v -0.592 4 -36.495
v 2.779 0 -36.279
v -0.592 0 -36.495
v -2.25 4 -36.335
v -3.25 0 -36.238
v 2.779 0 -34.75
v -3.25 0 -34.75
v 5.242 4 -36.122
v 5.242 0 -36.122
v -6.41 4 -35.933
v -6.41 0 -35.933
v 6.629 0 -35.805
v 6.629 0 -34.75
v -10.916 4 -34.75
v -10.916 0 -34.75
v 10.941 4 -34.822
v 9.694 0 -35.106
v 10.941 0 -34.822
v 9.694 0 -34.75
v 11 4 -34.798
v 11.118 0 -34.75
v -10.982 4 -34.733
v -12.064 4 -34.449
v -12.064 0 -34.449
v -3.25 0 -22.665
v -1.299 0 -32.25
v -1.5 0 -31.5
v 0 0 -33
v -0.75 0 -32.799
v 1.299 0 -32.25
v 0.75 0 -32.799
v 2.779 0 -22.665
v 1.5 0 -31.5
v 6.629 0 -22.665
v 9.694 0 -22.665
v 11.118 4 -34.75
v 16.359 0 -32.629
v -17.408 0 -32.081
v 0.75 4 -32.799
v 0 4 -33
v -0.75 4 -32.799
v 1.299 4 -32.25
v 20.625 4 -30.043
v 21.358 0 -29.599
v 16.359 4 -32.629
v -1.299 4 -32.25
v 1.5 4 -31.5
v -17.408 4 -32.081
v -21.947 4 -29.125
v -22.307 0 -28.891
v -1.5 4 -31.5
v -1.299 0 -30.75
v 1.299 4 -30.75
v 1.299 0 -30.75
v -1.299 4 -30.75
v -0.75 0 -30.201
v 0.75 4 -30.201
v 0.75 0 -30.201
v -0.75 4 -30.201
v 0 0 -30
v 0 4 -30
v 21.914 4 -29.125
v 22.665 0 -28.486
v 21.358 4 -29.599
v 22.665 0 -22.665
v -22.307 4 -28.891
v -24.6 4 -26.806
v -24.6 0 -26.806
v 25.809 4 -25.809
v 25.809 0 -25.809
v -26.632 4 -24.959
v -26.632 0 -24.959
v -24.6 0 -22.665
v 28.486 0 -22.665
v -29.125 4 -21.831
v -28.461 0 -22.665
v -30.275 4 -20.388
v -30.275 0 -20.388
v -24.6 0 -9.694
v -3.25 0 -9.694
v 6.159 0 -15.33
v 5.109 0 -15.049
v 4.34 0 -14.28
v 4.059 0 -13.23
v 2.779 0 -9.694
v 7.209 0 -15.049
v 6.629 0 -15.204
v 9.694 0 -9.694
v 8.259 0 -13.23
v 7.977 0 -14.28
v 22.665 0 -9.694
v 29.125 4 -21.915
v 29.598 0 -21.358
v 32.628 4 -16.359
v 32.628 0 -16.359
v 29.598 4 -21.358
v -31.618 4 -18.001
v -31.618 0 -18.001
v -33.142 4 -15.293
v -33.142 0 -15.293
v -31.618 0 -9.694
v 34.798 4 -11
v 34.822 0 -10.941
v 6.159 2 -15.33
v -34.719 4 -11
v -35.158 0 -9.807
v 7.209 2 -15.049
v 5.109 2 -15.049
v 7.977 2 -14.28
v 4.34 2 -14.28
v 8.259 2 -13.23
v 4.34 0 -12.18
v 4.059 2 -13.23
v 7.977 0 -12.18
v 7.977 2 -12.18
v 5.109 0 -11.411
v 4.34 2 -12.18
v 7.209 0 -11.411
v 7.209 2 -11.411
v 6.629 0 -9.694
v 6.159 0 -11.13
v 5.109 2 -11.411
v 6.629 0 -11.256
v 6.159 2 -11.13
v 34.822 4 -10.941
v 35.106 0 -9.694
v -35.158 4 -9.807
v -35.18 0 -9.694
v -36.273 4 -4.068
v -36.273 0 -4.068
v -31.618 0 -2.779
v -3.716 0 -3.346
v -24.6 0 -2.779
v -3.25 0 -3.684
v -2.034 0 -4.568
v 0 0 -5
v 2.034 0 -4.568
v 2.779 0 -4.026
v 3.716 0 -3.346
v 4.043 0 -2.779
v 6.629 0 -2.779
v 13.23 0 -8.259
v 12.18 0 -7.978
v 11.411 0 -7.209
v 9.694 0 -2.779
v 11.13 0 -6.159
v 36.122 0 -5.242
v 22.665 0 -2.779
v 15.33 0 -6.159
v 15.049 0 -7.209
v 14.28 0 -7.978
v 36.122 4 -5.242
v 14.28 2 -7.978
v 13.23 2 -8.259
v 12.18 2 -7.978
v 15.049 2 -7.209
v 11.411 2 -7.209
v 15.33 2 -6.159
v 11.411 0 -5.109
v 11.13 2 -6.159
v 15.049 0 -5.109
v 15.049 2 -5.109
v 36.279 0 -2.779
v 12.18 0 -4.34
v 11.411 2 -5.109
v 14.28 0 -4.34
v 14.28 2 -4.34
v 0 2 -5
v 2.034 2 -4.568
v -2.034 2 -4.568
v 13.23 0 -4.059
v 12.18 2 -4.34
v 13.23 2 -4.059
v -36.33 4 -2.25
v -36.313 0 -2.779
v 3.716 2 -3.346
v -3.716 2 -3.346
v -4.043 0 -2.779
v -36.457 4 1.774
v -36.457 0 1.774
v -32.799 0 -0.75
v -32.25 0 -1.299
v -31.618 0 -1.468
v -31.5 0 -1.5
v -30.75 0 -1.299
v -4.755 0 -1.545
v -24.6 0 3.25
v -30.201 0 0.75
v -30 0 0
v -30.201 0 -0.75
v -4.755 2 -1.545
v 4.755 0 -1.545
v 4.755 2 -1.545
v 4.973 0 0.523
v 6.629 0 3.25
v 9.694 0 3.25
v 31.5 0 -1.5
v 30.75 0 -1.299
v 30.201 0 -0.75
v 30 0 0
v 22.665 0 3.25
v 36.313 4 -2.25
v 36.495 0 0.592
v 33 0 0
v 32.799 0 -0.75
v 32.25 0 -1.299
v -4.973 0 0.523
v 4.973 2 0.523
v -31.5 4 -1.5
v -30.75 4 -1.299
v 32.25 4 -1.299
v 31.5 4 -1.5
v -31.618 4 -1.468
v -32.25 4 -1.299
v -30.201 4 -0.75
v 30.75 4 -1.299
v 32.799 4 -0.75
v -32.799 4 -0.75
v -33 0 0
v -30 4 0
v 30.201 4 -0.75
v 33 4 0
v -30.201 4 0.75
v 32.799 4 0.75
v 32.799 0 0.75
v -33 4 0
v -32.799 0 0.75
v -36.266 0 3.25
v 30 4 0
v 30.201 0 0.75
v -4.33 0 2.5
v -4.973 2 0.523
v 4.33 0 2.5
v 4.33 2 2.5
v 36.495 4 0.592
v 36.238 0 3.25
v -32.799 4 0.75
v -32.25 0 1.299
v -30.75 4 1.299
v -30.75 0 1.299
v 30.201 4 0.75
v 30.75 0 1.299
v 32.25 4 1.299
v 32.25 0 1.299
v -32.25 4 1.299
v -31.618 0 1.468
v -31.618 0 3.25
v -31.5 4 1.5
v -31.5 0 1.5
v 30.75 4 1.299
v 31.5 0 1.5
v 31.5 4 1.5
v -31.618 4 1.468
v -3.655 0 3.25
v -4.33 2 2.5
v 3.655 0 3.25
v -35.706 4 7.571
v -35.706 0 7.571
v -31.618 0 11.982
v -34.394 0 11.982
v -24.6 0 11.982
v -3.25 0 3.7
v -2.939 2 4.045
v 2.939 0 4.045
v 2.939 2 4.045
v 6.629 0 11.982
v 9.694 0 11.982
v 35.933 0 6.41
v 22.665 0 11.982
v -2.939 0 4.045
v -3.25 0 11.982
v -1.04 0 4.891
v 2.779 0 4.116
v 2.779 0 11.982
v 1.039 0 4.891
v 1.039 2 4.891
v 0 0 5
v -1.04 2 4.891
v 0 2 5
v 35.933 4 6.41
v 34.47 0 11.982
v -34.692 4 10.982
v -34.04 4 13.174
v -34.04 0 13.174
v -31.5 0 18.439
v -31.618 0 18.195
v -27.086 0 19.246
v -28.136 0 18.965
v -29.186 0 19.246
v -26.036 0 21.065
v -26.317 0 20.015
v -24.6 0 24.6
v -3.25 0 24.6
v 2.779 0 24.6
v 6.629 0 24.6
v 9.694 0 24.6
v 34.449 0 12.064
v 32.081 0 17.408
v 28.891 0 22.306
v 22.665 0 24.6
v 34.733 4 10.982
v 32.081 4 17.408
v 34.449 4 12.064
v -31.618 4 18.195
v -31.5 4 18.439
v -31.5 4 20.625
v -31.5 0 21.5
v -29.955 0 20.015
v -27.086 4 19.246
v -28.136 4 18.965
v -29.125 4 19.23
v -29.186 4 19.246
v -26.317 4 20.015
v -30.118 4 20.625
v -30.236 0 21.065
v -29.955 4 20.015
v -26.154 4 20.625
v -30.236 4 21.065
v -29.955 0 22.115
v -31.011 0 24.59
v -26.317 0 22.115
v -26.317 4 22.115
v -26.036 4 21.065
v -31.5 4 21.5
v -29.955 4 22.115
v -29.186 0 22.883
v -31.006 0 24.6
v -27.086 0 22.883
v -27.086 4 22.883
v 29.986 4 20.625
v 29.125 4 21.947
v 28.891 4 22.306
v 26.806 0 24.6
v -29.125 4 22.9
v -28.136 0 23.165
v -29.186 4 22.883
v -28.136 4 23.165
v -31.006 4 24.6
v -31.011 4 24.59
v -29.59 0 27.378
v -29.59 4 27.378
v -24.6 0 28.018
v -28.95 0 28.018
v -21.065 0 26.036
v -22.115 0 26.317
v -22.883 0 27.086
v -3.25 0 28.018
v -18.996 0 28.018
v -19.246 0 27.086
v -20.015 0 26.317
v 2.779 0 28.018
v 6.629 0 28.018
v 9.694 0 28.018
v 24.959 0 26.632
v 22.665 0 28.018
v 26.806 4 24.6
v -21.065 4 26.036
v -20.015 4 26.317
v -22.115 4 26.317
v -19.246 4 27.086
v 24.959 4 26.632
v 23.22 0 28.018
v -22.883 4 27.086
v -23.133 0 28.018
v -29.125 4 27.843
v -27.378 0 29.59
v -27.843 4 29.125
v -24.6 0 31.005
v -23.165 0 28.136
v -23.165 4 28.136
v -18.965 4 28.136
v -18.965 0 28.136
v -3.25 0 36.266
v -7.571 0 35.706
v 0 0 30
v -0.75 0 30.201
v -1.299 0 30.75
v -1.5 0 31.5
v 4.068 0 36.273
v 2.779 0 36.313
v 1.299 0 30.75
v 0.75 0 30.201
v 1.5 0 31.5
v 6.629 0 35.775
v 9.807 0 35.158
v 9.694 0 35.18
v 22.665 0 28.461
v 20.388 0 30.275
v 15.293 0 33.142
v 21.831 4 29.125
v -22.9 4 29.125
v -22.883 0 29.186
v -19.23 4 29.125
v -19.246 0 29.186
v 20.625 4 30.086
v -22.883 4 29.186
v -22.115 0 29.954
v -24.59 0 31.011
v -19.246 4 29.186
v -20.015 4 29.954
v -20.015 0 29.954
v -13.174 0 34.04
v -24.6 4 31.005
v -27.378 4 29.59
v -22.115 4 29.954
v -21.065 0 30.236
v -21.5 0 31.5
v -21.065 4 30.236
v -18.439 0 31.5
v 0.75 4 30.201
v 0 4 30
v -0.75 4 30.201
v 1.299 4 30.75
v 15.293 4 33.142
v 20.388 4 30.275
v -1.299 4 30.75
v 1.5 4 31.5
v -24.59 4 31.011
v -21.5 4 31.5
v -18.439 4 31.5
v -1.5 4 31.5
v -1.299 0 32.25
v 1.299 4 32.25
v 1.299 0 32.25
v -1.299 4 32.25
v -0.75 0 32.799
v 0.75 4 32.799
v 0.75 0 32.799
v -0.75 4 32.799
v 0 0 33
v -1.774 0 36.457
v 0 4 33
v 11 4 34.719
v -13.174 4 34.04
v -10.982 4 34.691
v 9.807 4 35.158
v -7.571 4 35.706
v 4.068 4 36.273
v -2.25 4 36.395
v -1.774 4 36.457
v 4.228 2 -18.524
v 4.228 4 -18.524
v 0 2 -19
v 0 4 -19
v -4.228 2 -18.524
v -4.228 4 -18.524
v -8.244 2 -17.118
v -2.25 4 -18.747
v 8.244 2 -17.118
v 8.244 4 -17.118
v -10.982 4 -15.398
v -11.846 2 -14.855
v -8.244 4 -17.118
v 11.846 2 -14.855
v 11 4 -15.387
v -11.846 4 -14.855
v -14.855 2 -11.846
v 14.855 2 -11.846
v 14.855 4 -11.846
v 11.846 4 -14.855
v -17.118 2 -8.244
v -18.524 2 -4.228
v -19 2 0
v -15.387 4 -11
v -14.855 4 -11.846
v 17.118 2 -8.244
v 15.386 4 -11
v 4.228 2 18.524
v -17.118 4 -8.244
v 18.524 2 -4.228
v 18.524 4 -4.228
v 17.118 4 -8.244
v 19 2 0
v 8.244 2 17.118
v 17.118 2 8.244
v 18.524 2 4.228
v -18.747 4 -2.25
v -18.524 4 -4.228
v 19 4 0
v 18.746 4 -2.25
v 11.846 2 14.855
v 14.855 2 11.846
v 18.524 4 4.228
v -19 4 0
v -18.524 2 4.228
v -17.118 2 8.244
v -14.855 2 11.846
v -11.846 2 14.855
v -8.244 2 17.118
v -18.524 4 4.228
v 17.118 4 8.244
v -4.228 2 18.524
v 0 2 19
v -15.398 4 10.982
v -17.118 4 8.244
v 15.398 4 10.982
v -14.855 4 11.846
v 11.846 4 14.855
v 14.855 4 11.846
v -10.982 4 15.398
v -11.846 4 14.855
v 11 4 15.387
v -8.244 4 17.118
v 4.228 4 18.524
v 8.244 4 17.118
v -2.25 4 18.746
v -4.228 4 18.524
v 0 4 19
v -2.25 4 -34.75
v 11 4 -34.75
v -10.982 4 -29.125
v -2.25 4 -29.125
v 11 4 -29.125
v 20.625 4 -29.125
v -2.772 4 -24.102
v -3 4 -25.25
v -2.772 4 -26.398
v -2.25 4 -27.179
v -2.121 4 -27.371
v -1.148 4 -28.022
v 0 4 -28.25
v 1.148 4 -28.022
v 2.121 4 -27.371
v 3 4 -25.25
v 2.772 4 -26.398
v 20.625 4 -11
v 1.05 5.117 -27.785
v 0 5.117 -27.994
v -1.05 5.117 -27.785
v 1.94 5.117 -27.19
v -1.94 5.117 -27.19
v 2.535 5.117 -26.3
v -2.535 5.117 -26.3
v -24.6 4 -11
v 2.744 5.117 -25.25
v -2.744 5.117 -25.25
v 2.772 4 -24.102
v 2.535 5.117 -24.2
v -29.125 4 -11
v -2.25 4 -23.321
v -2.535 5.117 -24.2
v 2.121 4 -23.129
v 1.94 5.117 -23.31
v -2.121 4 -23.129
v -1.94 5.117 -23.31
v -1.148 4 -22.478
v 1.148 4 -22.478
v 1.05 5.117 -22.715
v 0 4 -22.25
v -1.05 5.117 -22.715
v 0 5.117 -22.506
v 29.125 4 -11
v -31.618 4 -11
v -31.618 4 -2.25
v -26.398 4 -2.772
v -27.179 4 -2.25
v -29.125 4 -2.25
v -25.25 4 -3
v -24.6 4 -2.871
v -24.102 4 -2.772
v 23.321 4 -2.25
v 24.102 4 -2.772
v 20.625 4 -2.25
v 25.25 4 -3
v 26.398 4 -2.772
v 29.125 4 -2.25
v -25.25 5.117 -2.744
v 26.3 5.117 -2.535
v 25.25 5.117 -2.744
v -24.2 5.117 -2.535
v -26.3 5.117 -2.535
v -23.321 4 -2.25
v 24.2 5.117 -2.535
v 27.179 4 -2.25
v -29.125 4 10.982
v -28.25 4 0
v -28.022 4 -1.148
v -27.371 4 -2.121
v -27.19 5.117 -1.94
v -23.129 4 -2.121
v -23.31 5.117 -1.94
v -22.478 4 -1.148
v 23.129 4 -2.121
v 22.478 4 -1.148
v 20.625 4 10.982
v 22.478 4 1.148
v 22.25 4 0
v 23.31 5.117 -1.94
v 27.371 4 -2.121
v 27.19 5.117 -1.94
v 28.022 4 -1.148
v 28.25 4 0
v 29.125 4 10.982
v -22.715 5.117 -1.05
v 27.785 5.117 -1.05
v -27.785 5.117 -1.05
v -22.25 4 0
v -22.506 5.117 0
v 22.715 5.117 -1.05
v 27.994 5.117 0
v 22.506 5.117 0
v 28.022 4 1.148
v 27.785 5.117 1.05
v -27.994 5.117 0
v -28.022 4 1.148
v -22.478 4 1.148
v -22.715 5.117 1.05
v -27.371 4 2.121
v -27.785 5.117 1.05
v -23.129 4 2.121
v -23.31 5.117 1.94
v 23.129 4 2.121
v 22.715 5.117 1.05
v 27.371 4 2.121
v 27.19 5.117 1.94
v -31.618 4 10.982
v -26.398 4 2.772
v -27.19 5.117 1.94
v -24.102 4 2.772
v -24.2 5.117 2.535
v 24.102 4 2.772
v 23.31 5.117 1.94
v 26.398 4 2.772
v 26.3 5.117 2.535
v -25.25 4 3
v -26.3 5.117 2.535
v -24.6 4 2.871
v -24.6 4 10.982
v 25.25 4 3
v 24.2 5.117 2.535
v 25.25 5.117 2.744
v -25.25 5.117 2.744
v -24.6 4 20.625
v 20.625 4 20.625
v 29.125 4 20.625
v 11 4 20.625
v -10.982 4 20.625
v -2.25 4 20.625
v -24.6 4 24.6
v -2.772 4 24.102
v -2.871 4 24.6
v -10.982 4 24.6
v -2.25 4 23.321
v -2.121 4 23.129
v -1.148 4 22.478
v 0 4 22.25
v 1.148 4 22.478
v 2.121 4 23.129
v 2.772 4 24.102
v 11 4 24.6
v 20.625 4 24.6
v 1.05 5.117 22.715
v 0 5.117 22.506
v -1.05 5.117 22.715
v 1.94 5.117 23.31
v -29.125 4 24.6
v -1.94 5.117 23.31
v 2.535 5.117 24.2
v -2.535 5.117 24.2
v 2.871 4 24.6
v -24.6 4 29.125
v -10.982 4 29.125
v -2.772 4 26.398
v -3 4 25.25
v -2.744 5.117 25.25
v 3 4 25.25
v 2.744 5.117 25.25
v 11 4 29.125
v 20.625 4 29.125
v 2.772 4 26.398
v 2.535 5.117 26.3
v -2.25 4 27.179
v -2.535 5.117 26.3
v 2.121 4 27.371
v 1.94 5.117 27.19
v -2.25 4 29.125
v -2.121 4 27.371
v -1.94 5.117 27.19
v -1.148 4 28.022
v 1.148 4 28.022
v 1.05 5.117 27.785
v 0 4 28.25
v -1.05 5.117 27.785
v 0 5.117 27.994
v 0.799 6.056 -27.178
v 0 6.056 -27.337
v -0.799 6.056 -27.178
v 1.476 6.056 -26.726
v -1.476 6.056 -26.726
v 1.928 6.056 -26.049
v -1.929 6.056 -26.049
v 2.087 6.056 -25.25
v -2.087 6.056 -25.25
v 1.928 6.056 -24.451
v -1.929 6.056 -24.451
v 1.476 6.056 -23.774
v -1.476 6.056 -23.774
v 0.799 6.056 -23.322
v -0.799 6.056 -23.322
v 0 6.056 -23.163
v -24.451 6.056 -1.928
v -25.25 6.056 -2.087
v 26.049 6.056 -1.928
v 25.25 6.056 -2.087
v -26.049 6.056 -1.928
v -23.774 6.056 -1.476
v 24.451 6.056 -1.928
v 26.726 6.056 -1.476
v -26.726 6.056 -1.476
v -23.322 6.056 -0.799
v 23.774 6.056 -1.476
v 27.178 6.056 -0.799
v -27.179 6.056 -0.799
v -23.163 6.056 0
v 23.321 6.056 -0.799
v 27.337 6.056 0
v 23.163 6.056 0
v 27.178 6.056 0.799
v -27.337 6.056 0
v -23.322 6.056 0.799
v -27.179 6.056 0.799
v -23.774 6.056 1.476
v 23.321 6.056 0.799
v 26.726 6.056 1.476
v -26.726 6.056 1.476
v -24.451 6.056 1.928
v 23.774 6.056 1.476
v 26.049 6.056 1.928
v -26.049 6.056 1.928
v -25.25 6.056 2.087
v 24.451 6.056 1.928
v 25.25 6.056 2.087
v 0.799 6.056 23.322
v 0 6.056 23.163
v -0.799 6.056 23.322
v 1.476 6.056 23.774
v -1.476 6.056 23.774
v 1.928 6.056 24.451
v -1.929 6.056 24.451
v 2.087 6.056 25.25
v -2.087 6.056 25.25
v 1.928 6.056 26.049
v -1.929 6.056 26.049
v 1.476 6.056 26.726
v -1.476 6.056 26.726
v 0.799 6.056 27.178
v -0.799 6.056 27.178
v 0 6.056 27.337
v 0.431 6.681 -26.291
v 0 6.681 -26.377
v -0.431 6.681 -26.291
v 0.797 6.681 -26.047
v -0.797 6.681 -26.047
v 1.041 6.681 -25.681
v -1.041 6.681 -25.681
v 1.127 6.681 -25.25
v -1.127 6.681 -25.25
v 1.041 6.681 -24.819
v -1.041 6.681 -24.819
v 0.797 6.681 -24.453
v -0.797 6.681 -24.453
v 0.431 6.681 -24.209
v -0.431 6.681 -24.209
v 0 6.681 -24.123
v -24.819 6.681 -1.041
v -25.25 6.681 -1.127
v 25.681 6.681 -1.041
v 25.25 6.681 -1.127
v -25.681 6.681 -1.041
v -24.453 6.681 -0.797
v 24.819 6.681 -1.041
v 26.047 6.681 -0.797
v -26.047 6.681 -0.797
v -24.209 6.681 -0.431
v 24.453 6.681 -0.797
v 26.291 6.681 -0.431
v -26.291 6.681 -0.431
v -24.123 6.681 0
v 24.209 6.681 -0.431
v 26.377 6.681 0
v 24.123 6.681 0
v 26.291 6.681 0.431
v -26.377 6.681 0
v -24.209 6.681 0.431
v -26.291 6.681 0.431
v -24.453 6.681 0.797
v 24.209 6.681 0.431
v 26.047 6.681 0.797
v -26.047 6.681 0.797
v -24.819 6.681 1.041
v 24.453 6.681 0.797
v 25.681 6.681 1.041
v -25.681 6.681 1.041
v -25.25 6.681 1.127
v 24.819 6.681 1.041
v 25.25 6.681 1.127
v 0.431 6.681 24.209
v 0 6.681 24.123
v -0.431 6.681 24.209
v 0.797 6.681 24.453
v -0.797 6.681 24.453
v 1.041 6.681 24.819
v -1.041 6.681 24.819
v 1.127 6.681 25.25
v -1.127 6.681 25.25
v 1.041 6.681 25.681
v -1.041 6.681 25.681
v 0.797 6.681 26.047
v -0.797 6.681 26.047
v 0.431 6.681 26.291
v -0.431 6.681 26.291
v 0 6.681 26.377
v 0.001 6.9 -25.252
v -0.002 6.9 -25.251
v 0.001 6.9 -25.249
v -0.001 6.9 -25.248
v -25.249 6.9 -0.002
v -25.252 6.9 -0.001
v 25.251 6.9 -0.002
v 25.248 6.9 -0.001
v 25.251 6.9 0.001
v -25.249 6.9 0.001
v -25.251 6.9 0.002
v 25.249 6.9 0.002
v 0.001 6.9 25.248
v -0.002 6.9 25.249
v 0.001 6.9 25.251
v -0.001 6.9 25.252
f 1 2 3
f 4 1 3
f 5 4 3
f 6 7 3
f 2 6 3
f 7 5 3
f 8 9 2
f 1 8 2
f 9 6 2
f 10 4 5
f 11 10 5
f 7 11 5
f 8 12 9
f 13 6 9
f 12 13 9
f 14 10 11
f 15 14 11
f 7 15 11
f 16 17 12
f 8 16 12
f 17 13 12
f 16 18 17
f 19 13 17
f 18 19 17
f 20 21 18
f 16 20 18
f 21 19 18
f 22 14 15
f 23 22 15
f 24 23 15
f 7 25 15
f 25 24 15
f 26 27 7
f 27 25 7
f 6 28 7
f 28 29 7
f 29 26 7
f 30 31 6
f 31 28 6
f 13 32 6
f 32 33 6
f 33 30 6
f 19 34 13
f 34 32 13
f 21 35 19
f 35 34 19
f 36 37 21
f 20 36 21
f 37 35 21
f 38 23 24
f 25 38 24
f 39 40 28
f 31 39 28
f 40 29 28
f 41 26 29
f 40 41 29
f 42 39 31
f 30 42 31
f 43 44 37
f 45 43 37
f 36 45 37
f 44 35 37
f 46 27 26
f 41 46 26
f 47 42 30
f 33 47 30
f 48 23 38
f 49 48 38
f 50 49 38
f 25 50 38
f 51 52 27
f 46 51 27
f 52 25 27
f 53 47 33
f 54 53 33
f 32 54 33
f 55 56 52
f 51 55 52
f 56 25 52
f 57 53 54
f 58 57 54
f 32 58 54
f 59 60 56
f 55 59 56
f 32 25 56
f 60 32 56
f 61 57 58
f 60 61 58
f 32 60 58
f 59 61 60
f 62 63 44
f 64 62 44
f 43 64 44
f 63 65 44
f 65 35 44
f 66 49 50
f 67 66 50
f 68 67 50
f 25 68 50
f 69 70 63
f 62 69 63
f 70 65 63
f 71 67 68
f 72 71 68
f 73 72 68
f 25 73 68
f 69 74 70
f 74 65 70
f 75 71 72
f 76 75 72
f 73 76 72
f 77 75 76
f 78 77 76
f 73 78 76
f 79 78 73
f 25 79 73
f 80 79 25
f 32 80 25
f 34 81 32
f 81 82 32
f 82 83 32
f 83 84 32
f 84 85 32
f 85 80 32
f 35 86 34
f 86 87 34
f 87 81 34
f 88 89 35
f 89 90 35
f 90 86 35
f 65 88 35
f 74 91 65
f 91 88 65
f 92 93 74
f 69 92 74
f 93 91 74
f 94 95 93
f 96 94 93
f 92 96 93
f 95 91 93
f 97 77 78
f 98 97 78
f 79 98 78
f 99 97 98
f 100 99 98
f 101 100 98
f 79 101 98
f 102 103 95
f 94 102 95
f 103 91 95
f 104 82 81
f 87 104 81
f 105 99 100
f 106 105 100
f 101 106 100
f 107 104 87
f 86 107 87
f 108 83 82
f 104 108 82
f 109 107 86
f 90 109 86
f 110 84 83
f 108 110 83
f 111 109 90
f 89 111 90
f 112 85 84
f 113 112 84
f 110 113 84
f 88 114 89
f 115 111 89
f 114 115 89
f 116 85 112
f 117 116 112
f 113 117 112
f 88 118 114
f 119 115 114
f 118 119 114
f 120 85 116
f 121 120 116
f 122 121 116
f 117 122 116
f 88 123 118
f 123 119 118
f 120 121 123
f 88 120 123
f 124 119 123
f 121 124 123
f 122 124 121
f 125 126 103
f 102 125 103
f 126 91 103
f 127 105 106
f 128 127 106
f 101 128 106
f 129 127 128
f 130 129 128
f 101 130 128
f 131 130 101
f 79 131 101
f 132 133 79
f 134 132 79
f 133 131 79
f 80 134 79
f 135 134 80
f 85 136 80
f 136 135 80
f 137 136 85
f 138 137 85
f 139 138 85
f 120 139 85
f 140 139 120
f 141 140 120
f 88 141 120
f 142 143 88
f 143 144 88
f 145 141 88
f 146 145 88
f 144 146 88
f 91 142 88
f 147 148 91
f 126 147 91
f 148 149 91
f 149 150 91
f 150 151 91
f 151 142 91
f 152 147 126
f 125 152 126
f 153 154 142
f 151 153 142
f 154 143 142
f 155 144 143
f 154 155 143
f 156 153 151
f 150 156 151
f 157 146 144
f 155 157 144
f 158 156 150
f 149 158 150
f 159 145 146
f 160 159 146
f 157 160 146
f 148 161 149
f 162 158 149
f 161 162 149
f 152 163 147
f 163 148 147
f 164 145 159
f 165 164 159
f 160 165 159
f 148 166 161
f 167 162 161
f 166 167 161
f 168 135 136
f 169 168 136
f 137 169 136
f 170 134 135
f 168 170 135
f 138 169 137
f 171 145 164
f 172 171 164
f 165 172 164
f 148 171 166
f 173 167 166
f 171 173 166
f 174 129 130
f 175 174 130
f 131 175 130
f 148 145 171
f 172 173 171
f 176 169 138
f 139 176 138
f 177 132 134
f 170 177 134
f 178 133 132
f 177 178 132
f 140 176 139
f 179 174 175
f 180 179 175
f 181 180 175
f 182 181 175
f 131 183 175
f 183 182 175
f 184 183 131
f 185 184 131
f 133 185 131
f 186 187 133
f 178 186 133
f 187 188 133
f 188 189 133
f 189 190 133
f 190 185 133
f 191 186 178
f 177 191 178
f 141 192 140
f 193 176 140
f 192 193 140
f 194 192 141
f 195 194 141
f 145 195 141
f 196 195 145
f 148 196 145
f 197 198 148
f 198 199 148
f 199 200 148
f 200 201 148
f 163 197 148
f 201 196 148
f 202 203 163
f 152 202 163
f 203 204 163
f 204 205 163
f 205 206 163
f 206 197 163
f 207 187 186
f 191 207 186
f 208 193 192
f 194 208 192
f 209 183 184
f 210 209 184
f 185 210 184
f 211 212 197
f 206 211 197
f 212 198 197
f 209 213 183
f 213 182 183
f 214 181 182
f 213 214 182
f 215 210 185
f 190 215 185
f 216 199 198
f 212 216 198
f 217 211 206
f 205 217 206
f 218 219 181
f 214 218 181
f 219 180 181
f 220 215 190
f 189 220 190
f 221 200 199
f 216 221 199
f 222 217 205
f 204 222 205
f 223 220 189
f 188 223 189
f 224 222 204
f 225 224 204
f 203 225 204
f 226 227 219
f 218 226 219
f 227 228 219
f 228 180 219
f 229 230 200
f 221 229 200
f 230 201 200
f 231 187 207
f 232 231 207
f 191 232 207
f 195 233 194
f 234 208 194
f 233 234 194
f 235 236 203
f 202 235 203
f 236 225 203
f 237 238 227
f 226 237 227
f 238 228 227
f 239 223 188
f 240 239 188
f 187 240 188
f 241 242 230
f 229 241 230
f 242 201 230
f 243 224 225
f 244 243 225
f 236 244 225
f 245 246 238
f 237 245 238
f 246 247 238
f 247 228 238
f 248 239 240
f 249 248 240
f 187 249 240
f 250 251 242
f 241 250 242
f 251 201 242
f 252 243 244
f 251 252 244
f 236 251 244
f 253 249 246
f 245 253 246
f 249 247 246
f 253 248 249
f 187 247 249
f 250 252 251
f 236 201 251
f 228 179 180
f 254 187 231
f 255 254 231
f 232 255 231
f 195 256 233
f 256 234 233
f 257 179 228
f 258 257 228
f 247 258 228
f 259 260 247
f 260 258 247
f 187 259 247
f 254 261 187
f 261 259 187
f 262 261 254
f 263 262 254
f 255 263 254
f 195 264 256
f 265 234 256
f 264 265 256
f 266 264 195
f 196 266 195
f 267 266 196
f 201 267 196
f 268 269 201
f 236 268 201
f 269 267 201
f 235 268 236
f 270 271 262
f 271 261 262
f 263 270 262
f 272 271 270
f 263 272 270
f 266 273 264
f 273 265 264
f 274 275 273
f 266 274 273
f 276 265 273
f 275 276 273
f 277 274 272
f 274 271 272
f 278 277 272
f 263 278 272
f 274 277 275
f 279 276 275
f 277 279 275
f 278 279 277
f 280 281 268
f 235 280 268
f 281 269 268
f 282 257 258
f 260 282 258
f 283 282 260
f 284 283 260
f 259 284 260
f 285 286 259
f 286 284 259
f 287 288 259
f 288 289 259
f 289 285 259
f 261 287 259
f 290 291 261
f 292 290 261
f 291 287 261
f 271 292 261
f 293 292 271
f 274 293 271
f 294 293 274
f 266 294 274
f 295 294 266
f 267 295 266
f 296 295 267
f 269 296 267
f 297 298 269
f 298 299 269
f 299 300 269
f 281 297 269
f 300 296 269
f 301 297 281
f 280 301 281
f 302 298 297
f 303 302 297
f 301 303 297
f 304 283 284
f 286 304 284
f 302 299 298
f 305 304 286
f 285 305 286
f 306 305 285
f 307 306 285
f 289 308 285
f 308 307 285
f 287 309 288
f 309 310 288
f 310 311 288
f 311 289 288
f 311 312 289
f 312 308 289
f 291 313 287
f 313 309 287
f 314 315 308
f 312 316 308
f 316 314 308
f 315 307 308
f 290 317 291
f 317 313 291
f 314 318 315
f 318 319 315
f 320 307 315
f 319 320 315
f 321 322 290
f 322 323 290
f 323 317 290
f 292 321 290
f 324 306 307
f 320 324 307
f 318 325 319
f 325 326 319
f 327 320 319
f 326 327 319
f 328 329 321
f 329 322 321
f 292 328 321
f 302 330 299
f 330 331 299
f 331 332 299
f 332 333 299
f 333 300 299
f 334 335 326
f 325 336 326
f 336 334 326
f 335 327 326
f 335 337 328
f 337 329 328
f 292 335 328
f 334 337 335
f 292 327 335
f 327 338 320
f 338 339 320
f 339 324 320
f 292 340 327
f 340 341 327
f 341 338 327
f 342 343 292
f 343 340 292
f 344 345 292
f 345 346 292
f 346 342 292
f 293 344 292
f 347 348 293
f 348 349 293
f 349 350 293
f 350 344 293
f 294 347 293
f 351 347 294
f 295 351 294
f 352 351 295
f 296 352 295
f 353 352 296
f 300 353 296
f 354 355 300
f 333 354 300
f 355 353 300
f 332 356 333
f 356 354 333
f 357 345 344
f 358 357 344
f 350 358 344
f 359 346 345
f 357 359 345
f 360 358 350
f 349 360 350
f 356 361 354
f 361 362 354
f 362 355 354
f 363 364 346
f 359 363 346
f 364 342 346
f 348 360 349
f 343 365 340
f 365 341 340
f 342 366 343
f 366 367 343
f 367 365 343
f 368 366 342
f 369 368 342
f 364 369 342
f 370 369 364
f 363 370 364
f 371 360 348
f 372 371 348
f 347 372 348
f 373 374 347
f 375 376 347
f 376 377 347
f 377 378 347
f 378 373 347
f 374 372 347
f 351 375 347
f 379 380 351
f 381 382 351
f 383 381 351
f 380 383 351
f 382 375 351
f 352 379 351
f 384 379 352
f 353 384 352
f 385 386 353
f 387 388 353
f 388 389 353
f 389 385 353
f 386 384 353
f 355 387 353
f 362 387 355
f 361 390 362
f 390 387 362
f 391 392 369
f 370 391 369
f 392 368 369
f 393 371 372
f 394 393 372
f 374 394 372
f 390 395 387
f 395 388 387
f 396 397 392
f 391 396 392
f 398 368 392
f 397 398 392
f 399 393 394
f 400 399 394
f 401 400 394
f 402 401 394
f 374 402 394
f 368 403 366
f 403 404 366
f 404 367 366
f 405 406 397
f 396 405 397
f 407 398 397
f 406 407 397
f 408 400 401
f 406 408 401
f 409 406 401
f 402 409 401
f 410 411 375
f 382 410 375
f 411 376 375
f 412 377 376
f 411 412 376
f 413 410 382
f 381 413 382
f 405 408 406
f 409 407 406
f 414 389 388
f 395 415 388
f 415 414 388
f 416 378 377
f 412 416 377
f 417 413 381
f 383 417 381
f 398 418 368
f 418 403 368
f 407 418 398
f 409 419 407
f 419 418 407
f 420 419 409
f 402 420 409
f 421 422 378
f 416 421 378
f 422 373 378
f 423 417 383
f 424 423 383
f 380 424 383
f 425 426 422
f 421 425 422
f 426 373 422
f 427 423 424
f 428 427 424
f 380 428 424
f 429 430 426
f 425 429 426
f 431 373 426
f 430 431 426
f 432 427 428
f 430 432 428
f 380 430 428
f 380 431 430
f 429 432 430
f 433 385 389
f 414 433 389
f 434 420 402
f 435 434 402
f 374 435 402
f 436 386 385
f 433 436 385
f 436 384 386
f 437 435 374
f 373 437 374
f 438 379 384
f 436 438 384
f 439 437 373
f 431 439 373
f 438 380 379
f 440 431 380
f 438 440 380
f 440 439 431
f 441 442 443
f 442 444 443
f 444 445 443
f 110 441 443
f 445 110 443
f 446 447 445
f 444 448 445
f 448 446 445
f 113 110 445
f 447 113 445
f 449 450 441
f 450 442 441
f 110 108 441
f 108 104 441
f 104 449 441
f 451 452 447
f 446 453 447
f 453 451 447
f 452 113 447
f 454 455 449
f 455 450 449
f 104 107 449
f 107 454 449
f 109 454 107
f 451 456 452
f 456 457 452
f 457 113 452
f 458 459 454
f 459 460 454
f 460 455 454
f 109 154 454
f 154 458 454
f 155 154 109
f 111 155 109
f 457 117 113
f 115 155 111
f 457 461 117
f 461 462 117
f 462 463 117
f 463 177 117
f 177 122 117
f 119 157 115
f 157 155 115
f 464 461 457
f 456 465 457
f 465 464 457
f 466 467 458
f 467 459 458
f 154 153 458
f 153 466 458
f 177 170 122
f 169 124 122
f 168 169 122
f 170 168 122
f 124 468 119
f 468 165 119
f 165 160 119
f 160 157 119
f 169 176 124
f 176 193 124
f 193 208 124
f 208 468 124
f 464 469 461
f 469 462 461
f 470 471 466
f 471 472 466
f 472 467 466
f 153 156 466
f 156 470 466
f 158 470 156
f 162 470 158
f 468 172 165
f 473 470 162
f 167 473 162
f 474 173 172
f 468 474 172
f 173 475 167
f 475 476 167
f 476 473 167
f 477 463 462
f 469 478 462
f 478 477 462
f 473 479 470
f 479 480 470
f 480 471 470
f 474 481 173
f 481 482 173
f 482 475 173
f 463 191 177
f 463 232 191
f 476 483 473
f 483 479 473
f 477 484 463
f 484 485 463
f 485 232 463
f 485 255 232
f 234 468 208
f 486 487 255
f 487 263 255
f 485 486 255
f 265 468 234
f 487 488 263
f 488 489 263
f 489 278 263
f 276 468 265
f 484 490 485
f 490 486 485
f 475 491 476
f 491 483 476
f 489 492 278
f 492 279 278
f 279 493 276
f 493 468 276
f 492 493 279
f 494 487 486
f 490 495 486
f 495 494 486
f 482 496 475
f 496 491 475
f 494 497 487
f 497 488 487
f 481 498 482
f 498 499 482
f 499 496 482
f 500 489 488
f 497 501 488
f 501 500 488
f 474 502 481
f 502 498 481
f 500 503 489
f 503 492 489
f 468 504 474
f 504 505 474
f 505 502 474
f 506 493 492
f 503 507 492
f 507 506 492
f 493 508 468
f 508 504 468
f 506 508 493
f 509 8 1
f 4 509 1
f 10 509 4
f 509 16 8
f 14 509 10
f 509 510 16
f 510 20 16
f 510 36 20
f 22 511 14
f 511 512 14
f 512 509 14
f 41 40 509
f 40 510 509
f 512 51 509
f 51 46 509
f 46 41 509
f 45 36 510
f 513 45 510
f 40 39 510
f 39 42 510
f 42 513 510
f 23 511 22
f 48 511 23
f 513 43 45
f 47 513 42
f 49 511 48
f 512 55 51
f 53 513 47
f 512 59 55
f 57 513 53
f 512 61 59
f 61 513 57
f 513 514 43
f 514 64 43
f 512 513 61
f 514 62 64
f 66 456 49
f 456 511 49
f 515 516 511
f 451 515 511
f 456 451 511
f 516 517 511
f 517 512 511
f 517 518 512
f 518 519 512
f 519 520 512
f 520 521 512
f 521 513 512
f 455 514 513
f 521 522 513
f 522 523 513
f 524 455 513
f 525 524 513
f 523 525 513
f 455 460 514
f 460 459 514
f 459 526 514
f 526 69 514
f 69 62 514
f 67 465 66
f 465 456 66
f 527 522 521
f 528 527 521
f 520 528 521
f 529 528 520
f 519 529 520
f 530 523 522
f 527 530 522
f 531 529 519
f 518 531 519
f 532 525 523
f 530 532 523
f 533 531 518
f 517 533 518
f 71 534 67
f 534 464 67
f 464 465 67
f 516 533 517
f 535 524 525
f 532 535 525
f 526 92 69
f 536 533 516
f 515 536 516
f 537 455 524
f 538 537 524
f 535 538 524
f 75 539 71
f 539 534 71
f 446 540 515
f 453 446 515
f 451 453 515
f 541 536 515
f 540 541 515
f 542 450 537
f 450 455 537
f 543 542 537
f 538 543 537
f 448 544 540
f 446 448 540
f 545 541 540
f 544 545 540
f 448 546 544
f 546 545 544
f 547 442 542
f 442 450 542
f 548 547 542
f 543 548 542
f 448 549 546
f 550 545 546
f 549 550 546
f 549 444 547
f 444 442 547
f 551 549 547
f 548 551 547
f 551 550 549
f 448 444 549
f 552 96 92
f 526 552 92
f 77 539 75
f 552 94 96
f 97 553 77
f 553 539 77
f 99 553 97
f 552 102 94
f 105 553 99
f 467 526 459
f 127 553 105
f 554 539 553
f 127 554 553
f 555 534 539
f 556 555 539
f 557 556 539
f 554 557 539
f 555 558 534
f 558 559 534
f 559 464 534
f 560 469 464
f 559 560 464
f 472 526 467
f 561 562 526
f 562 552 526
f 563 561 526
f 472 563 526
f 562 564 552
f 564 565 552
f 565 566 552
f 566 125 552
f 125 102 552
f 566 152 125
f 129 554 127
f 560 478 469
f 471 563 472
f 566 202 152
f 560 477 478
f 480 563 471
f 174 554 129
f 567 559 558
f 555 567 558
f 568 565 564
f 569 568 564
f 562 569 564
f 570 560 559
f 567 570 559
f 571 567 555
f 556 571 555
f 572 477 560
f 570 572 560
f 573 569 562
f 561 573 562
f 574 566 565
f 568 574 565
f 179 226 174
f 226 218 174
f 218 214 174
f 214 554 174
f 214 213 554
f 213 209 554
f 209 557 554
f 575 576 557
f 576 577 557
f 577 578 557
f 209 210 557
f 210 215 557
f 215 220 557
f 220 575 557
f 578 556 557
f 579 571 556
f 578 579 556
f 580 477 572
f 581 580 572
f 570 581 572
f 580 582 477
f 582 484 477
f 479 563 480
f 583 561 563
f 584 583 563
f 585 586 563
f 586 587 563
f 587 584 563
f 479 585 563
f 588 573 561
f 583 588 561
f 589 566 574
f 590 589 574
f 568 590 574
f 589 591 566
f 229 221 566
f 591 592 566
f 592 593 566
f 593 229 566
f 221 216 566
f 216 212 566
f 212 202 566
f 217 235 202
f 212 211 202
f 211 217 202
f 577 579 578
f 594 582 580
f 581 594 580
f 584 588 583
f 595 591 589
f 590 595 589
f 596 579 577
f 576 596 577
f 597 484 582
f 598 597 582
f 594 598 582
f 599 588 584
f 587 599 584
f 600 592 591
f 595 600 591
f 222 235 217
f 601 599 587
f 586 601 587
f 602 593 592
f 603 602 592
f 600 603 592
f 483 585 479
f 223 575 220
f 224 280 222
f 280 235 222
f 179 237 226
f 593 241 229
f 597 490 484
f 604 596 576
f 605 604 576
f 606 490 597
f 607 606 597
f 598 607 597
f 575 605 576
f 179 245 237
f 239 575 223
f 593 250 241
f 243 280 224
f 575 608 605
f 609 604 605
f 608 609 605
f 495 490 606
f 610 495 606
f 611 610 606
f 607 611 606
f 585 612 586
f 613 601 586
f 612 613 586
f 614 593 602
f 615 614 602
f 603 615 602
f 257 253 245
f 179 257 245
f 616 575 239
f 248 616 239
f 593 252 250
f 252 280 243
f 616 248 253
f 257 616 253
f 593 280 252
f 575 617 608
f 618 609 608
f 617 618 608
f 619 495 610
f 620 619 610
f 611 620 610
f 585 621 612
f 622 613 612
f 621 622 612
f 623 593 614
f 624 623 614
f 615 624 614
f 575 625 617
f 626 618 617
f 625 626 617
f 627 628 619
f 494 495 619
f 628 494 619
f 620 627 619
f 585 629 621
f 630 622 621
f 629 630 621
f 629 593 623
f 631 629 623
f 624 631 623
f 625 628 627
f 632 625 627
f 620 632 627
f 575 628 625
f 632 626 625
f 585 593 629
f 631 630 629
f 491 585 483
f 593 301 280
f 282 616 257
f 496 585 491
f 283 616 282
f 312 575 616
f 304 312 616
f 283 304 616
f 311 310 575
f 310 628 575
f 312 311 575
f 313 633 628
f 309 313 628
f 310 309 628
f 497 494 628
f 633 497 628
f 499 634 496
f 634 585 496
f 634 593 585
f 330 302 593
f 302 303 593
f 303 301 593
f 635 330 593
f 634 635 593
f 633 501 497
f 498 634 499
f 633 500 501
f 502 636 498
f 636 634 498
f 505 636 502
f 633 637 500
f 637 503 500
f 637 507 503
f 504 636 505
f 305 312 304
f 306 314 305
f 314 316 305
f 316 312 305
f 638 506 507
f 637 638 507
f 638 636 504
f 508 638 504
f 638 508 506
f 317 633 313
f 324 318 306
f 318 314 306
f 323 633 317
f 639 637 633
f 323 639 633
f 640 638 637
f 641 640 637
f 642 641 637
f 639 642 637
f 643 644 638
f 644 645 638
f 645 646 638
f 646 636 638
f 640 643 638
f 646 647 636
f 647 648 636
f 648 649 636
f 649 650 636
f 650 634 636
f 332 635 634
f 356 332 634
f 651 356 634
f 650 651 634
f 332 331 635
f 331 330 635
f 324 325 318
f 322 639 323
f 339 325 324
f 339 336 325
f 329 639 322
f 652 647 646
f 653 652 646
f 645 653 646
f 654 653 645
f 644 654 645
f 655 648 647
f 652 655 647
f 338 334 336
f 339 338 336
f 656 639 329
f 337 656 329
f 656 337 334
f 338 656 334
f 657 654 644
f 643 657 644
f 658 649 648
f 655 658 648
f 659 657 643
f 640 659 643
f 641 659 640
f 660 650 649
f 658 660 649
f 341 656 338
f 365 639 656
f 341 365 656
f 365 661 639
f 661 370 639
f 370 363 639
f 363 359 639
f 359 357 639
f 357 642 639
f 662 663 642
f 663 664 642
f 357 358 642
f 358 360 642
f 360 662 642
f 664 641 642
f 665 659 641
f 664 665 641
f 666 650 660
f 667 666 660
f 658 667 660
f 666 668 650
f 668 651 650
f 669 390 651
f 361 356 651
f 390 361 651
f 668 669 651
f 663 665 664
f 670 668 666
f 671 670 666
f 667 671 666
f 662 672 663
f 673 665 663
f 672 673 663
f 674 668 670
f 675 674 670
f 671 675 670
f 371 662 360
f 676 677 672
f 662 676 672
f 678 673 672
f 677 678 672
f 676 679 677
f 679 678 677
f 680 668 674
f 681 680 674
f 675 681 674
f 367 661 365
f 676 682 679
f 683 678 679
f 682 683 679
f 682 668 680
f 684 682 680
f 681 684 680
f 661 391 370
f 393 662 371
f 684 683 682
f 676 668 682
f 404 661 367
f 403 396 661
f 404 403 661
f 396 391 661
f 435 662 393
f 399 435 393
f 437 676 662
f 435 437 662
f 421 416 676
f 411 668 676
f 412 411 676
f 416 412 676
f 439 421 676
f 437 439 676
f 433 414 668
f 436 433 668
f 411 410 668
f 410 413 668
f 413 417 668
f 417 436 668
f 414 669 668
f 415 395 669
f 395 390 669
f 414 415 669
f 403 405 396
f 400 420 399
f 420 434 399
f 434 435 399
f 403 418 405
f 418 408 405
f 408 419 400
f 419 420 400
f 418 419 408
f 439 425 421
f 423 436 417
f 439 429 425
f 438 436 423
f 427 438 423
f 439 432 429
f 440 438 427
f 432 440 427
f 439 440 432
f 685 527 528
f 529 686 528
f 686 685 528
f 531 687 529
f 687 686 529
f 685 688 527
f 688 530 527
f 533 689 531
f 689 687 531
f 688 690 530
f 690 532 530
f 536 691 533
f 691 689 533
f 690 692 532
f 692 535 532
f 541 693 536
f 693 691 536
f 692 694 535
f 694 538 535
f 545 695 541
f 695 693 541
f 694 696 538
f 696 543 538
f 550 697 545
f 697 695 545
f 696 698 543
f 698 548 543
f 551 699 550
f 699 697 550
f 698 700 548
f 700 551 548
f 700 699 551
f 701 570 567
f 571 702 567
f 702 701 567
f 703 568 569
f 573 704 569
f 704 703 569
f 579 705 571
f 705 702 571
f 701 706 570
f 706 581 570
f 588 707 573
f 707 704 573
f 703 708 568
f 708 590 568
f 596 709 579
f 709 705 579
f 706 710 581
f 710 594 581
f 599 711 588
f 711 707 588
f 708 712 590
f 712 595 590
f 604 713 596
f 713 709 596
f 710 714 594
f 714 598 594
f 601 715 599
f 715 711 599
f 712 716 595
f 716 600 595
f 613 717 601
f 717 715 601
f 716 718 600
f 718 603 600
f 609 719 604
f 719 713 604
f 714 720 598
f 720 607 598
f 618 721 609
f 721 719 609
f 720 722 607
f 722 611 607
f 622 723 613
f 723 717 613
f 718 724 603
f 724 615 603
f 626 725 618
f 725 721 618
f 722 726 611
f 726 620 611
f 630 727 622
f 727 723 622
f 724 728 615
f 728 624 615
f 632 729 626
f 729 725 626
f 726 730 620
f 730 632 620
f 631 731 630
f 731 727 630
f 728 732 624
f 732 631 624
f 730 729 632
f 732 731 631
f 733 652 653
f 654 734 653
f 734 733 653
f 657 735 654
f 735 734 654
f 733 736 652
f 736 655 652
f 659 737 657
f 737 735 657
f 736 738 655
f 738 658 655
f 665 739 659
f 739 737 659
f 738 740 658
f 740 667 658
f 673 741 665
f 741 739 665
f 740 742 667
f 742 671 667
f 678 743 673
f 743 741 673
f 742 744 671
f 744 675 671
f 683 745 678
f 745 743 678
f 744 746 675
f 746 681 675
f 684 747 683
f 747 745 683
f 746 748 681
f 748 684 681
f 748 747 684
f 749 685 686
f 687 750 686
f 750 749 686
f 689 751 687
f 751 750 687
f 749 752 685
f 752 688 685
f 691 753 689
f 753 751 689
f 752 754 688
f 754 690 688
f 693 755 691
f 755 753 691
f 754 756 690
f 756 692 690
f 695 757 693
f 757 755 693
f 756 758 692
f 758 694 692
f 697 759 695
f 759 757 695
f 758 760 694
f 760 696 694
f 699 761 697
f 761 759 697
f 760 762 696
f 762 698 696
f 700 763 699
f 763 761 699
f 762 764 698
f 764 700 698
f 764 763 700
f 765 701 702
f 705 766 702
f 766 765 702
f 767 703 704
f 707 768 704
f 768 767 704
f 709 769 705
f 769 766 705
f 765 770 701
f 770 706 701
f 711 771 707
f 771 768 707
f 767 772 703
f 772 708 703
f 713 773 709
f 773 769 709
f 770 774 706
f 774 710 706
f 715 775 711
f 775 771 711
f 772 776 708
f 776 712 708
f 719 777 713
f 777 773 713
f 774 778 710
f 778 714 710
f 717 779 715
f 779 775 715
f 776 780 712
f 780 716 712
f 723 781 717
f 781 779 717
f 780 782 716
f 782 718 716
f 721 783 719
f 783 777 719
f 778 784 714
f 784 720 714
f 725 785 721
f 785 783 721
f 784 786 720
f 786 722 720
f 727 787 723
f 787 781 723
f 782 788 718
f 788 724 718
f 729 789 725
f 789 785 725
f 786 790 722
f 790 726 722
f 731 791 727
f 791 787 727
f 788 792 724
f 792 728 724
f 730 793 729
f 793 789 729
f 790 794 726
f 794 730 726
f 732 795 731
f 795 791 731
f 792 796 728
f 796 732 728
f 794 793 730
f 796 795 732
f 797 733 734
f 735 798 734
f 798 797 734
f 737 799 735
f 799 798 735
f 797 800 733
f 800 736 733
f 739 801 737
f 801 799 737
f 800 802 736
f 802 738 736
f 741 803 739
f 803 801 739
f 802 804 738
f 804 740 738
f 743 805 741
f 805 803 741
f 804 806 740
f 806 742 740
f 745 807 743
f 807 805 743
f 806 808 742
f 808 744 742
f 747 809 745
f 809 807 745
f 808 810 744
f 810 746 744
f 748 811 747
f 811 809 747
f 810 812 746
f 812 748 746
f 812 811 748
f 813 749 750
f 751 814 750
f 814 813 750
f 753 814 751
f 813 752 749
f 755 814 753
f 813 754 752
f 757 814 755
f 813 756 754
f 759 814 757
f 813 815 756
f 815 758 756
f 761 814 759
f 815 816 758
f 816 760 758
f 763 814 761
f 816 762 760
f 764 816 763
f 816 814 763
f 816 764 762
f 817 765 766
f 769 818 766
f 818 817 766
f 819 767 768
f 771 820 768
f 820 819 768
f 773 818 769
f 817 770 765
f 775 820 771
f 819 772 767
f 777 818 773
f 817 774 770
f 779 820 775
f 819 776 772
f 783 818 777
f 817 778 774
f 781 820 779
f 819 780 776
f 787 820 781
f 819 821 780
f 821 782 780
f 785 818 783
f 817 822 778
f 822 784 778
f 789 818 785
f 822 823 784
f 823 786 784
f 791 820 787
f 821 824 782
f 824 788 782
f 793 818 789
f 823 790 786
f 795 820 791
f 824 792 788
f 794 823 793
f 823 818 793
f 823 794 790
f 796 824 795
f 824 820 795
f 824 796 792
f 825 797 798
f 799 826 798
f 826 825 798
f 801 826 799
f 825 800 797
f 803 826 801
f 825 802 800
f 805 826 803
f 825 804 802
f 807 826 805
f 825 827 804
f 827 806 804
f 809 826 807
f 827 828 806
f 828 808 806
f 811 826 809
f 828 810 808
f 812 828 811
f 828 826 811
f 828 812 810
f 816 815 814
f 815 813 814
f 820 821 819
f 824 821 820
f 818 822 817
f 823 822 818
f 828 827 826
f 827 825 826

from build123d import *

# Parameters (mm, degrees)
SKETCH1_R           = 2.1
SKETCH1_R_2         = 1.5
SKETCH1_R_3         = 3
SKETCH1_R_4         = 19
BOSS_EXTRUDE1_DEPTH = 4
BOSS_EXTRUDE2_DEPTH = 2
FILLET1_R           = 10
SKETCH1_4_R         = 3
BOSS_EXTRUDE3_DEPTH = 6.9
FILLET2_R           = 3


with BuildPart() as part:
    # Sketch1 → Boss-Extrude1 (new body)
    with BuildSketch(Plane(origin=(0, 0, 0), x_dir=(1, 0, 0), z_dir=(0, 1, 0))):
        with BuildLine():
            ThreePointArc((-18.439088915, -31.5), (25.809397513, 25.809397513), (-31.5, -18.439088915))
            Line((-31.5, -18.439088915), (-31.5, -31.5))
            Line((-31.5, -31.5), (-18.439088915, -31.5))
        make_face()
        with Locations(Location((-28.135778823, -21.064711012, 0), (0, 0, 270))):
            Circle(SKETCH1_R, mode=Mode.SUBTRACT)
        with Locations(Location((-21.064711012, -28.135778823, 0), (0, 0, 270))):
            Circle(SKETCH1_R, mode=Mode.SUBTRACT)
        with Locations(Location((0, -31.5, 0), (0, 0, 270))):
            Circle(SKETCH1_R_2, mode=Mode.SUBTRACT)
        with Locations(Location((0, -25.25, 0), (0, 0, 270))):
            Circle(SKETCH1_R_3, mode=Mode.SUBTRACT)
        with Locations(Location((-31.5, 0, 0), (0, 0, 270))):
            Circle(SKETCH1_R_2, mode=Mode.SUBTRACT)
        with Locations(Location((-25.25, 0, 0), (0, 0, 270))):
            Circle(SKETCH1_R_3, mode=Mode.SUBTRACT)
        with Locations(Location((0, 0, 0), (0, 0, 270))):
            Circle(SKETCH1_R_4, mode=Mode.SUBTRACT)
        with Locations(Location((25.25, 0, 0), (0, 0, 270))):
            Circle(SKETCH1_R_3, mode=Mode.SUBTRACT)
        with Locations(Location((31.5, 0, 0), (0, 0, 270))):
            Circle(SKETCH1_R_2, mode=Mode.SUBTRACT)
        with Locations(Location((0, 25.25, 0), (0, 0, 270))):
            Circle(SKETCH1_R_3, mode=Mode.SUBTRACT)
        with Locations(Location((0, 31.5, 0), (0, 0, 270))):
            Circle(SKETCH1_R_2, mode=Mode.SUBTRACT)
    extrude(amount=BOSS_EXTRUDE1_DEPTH)

    # Sketch1<3> → Boss-Extrude2 (add)
    with BuildSketch(Plane(origin=(0, 0, 0), x_dir=(1, 0, 0), z_dir=(0, 1, 0))):
        with BuildLine():
            ThreePointArc((0, 19), (-17.553711118, 7.270985215), (-13.435028843, -13.435028843))
            ThreePointArc((-13.435028843, -13.435028843), (7.270985215, -17.553711118), (19, 0))
            ThreePointArc((19, 0), (13.435028843, 13.435028843), (0, 19))
        make_face()
        with BuildLine():
            ThreePointArc((-3.535533906, -3.535533906), (-3.535533906, 3.535533906), (3.535533906, 3.535533906))
            ThreePointArc((3.535533906, 3.535533906), (4.619397663, 1.913417162), (5, 0))
            ThreePointArc((5, 0), (1.913417162, -4.619397663), (-3.535533906, -3.535533906))
        make_face(mode=Mode.SUBTRACT)
        with BuildLine():
            ThreePointArc((15.329967876, 6.158900064), (12.426332668, 4.218753046), (11.745043636, 7.643824305))
            ThreePointArc((11.745043636, 7.643824305), (14.033603084, 8.099047082), (15.329967876, 6.158900064))
        make_face(mode=Mode.SUBTRACT)
        with BuildLine():
            ThreePointArc((8.258900064, 13.229967876), (8.099047082, 12.426332668), (7.643824305, 11.745043636))
            ThreePointArc((7.643824305, 11.745043636), (4.218753046, 14.033603084), (8.258900064, 13.229967876))
        make_face(mode=Mode.SUBTRACT)
    extrude(amount=BOSS_EXTRUDE2_DEPTH)

    # Fillet1
    fillet1_edges = [part.edges().sort_by_distance(p)[0] for p in [
        (-31.5, 2, 31.5),
    ]]
    fillet(fillet1_edges, radius=FILLET1_R)

    # Sketch1<4> → Boss-Extrude3 (add)
    with BuildSketch(Plane(origin=(0, 0, 0), x_dir=(1, 0, 0), z_dir=(0, 1, 0))):
        with Locations(Location((0, 25.25, 0), (0, 0, 90))):
            Circle(SKETCH1_4_R)
        with Locations(Location((25.25, 0, 0), (0, 0, 90))):
            Circle(SKETCH1_4_R)
        with Locations(Location((0, -25.25, 0), (0, 0, 90))):
            Circle(SKETCH1_4_R)
        with Locations(Location((-25.25, 0, 0), (0, 0, 90))):
            Circle(SKETCH1_4_R)
    extrude(amount=BOSS_EXTRUDE3_DEPTH)

    # Fillet2
    # the kernel refuses this fillet: 3 mm, written as the material it takes off along each edge
    with BuildSketch(Plane(origin=(0, 6.9, -25.25), x_dir=(0, 0, -1), z_dir=(1, 0, 0))) as fillet2_piece_1:
        with BuildLine():
            CenterArc((0.00166713, -3), FILLET2_R, 1.910213172, 88.089786828)
            Line((0.00166713, 0), (0.00166713, 0.06))
            Line((0.00166713, 0.06), (3, 0.06))
            Line((3, 0.06), (3.06, 0))
            ThreePointArc((3.06, 0), (3.06, -1.45), (3.059966657, -2.898))
            Line((3.059966657, -2.898), (3, -2.9))
        make_face()
    revolve(axis=Axis((0, 6.9, -25.25), (0, 1, 0)), mode=Mode.SUBTRACT)
    with BuildSketch(Plane(origin=(-25.25, 6.9, 0), x_dir=(0, 0, -1), z_dir=(1, 0, 0))) as fillet2_piece_2:
        with BuildLine():
            CenterArc((0.00166713, -3), FILLET2_R, 1.910213172, 88.089786828)
            Line((0.00166713, 0), (0.00166713, 0.06))
            Line((0.00166713, 0.06), (3, 0.06))
            Line((3, 0.06), (3.06, 0))
            ThreePointArc((3.06, 0), (3.06, -1.45), (3.059966657, -2.898))
            Line((3.059966657, -2.898), (3, -2.9))
        make_face()
    revolve(axis=Axis((-25.25, 6.9, 0), (0, 1, 0)), mode=Mode.SUBTRACT)
    with BuildSketch(Plane(origin=(25.25, 6.9, 0), x_dir=(0, 0, -1), z_dir=(1, 0, 0))) as fillet2_piece_3:
        with BuildLine():
            CenterArc((0.00166713, -3), FILLET2_R, 1.910213172, 88.089786828)
            Line((0.00166713, 0), (0.00166713, 0.06))
            Line((0.00166713, 0.06), (3, 0.06))
            Line((3, 0.06), (3.06, 0))
            ThreePointArc((3.06, 0), (3.06, -1.45), (3.059966657, -2.898))
            Line((3.059966657, -2.898), (3, -2.9))
        make_face()
    revolve(axis=Axis((25.25, 6.9, 0), (0, 1, 0)), mode=Mode.SUBTRACT)
    with BuildSketch(Plane(origin=(0, 6.9, 25.25), x_dir=(0, 0, -1), z_dir=(1, 0, 0))) as fillet2_piece_4:
        with BuildLine():
            CenterArc((0.00166713, -3), FILLET2_R, 1.910213172, 88.089786828)
            Line((0.00166713, 0), (0.00166713, 0.06))
            Line((0.00166713, 0.06), (3, 0.06))
            Line((3, 0.06), (3.06, 0))
            ThreePointArc((3.06, 0), (3.06, -1.45), (3.059966657, -2.898))
            Line((3.059966657, -2.898), (3, -2.9))
        make_face()
    revolve(axis=Axis((0, 6.9, 25.25), (0, 1, 0)), mode=Mode.SUBTRACT)


solid = part.part
